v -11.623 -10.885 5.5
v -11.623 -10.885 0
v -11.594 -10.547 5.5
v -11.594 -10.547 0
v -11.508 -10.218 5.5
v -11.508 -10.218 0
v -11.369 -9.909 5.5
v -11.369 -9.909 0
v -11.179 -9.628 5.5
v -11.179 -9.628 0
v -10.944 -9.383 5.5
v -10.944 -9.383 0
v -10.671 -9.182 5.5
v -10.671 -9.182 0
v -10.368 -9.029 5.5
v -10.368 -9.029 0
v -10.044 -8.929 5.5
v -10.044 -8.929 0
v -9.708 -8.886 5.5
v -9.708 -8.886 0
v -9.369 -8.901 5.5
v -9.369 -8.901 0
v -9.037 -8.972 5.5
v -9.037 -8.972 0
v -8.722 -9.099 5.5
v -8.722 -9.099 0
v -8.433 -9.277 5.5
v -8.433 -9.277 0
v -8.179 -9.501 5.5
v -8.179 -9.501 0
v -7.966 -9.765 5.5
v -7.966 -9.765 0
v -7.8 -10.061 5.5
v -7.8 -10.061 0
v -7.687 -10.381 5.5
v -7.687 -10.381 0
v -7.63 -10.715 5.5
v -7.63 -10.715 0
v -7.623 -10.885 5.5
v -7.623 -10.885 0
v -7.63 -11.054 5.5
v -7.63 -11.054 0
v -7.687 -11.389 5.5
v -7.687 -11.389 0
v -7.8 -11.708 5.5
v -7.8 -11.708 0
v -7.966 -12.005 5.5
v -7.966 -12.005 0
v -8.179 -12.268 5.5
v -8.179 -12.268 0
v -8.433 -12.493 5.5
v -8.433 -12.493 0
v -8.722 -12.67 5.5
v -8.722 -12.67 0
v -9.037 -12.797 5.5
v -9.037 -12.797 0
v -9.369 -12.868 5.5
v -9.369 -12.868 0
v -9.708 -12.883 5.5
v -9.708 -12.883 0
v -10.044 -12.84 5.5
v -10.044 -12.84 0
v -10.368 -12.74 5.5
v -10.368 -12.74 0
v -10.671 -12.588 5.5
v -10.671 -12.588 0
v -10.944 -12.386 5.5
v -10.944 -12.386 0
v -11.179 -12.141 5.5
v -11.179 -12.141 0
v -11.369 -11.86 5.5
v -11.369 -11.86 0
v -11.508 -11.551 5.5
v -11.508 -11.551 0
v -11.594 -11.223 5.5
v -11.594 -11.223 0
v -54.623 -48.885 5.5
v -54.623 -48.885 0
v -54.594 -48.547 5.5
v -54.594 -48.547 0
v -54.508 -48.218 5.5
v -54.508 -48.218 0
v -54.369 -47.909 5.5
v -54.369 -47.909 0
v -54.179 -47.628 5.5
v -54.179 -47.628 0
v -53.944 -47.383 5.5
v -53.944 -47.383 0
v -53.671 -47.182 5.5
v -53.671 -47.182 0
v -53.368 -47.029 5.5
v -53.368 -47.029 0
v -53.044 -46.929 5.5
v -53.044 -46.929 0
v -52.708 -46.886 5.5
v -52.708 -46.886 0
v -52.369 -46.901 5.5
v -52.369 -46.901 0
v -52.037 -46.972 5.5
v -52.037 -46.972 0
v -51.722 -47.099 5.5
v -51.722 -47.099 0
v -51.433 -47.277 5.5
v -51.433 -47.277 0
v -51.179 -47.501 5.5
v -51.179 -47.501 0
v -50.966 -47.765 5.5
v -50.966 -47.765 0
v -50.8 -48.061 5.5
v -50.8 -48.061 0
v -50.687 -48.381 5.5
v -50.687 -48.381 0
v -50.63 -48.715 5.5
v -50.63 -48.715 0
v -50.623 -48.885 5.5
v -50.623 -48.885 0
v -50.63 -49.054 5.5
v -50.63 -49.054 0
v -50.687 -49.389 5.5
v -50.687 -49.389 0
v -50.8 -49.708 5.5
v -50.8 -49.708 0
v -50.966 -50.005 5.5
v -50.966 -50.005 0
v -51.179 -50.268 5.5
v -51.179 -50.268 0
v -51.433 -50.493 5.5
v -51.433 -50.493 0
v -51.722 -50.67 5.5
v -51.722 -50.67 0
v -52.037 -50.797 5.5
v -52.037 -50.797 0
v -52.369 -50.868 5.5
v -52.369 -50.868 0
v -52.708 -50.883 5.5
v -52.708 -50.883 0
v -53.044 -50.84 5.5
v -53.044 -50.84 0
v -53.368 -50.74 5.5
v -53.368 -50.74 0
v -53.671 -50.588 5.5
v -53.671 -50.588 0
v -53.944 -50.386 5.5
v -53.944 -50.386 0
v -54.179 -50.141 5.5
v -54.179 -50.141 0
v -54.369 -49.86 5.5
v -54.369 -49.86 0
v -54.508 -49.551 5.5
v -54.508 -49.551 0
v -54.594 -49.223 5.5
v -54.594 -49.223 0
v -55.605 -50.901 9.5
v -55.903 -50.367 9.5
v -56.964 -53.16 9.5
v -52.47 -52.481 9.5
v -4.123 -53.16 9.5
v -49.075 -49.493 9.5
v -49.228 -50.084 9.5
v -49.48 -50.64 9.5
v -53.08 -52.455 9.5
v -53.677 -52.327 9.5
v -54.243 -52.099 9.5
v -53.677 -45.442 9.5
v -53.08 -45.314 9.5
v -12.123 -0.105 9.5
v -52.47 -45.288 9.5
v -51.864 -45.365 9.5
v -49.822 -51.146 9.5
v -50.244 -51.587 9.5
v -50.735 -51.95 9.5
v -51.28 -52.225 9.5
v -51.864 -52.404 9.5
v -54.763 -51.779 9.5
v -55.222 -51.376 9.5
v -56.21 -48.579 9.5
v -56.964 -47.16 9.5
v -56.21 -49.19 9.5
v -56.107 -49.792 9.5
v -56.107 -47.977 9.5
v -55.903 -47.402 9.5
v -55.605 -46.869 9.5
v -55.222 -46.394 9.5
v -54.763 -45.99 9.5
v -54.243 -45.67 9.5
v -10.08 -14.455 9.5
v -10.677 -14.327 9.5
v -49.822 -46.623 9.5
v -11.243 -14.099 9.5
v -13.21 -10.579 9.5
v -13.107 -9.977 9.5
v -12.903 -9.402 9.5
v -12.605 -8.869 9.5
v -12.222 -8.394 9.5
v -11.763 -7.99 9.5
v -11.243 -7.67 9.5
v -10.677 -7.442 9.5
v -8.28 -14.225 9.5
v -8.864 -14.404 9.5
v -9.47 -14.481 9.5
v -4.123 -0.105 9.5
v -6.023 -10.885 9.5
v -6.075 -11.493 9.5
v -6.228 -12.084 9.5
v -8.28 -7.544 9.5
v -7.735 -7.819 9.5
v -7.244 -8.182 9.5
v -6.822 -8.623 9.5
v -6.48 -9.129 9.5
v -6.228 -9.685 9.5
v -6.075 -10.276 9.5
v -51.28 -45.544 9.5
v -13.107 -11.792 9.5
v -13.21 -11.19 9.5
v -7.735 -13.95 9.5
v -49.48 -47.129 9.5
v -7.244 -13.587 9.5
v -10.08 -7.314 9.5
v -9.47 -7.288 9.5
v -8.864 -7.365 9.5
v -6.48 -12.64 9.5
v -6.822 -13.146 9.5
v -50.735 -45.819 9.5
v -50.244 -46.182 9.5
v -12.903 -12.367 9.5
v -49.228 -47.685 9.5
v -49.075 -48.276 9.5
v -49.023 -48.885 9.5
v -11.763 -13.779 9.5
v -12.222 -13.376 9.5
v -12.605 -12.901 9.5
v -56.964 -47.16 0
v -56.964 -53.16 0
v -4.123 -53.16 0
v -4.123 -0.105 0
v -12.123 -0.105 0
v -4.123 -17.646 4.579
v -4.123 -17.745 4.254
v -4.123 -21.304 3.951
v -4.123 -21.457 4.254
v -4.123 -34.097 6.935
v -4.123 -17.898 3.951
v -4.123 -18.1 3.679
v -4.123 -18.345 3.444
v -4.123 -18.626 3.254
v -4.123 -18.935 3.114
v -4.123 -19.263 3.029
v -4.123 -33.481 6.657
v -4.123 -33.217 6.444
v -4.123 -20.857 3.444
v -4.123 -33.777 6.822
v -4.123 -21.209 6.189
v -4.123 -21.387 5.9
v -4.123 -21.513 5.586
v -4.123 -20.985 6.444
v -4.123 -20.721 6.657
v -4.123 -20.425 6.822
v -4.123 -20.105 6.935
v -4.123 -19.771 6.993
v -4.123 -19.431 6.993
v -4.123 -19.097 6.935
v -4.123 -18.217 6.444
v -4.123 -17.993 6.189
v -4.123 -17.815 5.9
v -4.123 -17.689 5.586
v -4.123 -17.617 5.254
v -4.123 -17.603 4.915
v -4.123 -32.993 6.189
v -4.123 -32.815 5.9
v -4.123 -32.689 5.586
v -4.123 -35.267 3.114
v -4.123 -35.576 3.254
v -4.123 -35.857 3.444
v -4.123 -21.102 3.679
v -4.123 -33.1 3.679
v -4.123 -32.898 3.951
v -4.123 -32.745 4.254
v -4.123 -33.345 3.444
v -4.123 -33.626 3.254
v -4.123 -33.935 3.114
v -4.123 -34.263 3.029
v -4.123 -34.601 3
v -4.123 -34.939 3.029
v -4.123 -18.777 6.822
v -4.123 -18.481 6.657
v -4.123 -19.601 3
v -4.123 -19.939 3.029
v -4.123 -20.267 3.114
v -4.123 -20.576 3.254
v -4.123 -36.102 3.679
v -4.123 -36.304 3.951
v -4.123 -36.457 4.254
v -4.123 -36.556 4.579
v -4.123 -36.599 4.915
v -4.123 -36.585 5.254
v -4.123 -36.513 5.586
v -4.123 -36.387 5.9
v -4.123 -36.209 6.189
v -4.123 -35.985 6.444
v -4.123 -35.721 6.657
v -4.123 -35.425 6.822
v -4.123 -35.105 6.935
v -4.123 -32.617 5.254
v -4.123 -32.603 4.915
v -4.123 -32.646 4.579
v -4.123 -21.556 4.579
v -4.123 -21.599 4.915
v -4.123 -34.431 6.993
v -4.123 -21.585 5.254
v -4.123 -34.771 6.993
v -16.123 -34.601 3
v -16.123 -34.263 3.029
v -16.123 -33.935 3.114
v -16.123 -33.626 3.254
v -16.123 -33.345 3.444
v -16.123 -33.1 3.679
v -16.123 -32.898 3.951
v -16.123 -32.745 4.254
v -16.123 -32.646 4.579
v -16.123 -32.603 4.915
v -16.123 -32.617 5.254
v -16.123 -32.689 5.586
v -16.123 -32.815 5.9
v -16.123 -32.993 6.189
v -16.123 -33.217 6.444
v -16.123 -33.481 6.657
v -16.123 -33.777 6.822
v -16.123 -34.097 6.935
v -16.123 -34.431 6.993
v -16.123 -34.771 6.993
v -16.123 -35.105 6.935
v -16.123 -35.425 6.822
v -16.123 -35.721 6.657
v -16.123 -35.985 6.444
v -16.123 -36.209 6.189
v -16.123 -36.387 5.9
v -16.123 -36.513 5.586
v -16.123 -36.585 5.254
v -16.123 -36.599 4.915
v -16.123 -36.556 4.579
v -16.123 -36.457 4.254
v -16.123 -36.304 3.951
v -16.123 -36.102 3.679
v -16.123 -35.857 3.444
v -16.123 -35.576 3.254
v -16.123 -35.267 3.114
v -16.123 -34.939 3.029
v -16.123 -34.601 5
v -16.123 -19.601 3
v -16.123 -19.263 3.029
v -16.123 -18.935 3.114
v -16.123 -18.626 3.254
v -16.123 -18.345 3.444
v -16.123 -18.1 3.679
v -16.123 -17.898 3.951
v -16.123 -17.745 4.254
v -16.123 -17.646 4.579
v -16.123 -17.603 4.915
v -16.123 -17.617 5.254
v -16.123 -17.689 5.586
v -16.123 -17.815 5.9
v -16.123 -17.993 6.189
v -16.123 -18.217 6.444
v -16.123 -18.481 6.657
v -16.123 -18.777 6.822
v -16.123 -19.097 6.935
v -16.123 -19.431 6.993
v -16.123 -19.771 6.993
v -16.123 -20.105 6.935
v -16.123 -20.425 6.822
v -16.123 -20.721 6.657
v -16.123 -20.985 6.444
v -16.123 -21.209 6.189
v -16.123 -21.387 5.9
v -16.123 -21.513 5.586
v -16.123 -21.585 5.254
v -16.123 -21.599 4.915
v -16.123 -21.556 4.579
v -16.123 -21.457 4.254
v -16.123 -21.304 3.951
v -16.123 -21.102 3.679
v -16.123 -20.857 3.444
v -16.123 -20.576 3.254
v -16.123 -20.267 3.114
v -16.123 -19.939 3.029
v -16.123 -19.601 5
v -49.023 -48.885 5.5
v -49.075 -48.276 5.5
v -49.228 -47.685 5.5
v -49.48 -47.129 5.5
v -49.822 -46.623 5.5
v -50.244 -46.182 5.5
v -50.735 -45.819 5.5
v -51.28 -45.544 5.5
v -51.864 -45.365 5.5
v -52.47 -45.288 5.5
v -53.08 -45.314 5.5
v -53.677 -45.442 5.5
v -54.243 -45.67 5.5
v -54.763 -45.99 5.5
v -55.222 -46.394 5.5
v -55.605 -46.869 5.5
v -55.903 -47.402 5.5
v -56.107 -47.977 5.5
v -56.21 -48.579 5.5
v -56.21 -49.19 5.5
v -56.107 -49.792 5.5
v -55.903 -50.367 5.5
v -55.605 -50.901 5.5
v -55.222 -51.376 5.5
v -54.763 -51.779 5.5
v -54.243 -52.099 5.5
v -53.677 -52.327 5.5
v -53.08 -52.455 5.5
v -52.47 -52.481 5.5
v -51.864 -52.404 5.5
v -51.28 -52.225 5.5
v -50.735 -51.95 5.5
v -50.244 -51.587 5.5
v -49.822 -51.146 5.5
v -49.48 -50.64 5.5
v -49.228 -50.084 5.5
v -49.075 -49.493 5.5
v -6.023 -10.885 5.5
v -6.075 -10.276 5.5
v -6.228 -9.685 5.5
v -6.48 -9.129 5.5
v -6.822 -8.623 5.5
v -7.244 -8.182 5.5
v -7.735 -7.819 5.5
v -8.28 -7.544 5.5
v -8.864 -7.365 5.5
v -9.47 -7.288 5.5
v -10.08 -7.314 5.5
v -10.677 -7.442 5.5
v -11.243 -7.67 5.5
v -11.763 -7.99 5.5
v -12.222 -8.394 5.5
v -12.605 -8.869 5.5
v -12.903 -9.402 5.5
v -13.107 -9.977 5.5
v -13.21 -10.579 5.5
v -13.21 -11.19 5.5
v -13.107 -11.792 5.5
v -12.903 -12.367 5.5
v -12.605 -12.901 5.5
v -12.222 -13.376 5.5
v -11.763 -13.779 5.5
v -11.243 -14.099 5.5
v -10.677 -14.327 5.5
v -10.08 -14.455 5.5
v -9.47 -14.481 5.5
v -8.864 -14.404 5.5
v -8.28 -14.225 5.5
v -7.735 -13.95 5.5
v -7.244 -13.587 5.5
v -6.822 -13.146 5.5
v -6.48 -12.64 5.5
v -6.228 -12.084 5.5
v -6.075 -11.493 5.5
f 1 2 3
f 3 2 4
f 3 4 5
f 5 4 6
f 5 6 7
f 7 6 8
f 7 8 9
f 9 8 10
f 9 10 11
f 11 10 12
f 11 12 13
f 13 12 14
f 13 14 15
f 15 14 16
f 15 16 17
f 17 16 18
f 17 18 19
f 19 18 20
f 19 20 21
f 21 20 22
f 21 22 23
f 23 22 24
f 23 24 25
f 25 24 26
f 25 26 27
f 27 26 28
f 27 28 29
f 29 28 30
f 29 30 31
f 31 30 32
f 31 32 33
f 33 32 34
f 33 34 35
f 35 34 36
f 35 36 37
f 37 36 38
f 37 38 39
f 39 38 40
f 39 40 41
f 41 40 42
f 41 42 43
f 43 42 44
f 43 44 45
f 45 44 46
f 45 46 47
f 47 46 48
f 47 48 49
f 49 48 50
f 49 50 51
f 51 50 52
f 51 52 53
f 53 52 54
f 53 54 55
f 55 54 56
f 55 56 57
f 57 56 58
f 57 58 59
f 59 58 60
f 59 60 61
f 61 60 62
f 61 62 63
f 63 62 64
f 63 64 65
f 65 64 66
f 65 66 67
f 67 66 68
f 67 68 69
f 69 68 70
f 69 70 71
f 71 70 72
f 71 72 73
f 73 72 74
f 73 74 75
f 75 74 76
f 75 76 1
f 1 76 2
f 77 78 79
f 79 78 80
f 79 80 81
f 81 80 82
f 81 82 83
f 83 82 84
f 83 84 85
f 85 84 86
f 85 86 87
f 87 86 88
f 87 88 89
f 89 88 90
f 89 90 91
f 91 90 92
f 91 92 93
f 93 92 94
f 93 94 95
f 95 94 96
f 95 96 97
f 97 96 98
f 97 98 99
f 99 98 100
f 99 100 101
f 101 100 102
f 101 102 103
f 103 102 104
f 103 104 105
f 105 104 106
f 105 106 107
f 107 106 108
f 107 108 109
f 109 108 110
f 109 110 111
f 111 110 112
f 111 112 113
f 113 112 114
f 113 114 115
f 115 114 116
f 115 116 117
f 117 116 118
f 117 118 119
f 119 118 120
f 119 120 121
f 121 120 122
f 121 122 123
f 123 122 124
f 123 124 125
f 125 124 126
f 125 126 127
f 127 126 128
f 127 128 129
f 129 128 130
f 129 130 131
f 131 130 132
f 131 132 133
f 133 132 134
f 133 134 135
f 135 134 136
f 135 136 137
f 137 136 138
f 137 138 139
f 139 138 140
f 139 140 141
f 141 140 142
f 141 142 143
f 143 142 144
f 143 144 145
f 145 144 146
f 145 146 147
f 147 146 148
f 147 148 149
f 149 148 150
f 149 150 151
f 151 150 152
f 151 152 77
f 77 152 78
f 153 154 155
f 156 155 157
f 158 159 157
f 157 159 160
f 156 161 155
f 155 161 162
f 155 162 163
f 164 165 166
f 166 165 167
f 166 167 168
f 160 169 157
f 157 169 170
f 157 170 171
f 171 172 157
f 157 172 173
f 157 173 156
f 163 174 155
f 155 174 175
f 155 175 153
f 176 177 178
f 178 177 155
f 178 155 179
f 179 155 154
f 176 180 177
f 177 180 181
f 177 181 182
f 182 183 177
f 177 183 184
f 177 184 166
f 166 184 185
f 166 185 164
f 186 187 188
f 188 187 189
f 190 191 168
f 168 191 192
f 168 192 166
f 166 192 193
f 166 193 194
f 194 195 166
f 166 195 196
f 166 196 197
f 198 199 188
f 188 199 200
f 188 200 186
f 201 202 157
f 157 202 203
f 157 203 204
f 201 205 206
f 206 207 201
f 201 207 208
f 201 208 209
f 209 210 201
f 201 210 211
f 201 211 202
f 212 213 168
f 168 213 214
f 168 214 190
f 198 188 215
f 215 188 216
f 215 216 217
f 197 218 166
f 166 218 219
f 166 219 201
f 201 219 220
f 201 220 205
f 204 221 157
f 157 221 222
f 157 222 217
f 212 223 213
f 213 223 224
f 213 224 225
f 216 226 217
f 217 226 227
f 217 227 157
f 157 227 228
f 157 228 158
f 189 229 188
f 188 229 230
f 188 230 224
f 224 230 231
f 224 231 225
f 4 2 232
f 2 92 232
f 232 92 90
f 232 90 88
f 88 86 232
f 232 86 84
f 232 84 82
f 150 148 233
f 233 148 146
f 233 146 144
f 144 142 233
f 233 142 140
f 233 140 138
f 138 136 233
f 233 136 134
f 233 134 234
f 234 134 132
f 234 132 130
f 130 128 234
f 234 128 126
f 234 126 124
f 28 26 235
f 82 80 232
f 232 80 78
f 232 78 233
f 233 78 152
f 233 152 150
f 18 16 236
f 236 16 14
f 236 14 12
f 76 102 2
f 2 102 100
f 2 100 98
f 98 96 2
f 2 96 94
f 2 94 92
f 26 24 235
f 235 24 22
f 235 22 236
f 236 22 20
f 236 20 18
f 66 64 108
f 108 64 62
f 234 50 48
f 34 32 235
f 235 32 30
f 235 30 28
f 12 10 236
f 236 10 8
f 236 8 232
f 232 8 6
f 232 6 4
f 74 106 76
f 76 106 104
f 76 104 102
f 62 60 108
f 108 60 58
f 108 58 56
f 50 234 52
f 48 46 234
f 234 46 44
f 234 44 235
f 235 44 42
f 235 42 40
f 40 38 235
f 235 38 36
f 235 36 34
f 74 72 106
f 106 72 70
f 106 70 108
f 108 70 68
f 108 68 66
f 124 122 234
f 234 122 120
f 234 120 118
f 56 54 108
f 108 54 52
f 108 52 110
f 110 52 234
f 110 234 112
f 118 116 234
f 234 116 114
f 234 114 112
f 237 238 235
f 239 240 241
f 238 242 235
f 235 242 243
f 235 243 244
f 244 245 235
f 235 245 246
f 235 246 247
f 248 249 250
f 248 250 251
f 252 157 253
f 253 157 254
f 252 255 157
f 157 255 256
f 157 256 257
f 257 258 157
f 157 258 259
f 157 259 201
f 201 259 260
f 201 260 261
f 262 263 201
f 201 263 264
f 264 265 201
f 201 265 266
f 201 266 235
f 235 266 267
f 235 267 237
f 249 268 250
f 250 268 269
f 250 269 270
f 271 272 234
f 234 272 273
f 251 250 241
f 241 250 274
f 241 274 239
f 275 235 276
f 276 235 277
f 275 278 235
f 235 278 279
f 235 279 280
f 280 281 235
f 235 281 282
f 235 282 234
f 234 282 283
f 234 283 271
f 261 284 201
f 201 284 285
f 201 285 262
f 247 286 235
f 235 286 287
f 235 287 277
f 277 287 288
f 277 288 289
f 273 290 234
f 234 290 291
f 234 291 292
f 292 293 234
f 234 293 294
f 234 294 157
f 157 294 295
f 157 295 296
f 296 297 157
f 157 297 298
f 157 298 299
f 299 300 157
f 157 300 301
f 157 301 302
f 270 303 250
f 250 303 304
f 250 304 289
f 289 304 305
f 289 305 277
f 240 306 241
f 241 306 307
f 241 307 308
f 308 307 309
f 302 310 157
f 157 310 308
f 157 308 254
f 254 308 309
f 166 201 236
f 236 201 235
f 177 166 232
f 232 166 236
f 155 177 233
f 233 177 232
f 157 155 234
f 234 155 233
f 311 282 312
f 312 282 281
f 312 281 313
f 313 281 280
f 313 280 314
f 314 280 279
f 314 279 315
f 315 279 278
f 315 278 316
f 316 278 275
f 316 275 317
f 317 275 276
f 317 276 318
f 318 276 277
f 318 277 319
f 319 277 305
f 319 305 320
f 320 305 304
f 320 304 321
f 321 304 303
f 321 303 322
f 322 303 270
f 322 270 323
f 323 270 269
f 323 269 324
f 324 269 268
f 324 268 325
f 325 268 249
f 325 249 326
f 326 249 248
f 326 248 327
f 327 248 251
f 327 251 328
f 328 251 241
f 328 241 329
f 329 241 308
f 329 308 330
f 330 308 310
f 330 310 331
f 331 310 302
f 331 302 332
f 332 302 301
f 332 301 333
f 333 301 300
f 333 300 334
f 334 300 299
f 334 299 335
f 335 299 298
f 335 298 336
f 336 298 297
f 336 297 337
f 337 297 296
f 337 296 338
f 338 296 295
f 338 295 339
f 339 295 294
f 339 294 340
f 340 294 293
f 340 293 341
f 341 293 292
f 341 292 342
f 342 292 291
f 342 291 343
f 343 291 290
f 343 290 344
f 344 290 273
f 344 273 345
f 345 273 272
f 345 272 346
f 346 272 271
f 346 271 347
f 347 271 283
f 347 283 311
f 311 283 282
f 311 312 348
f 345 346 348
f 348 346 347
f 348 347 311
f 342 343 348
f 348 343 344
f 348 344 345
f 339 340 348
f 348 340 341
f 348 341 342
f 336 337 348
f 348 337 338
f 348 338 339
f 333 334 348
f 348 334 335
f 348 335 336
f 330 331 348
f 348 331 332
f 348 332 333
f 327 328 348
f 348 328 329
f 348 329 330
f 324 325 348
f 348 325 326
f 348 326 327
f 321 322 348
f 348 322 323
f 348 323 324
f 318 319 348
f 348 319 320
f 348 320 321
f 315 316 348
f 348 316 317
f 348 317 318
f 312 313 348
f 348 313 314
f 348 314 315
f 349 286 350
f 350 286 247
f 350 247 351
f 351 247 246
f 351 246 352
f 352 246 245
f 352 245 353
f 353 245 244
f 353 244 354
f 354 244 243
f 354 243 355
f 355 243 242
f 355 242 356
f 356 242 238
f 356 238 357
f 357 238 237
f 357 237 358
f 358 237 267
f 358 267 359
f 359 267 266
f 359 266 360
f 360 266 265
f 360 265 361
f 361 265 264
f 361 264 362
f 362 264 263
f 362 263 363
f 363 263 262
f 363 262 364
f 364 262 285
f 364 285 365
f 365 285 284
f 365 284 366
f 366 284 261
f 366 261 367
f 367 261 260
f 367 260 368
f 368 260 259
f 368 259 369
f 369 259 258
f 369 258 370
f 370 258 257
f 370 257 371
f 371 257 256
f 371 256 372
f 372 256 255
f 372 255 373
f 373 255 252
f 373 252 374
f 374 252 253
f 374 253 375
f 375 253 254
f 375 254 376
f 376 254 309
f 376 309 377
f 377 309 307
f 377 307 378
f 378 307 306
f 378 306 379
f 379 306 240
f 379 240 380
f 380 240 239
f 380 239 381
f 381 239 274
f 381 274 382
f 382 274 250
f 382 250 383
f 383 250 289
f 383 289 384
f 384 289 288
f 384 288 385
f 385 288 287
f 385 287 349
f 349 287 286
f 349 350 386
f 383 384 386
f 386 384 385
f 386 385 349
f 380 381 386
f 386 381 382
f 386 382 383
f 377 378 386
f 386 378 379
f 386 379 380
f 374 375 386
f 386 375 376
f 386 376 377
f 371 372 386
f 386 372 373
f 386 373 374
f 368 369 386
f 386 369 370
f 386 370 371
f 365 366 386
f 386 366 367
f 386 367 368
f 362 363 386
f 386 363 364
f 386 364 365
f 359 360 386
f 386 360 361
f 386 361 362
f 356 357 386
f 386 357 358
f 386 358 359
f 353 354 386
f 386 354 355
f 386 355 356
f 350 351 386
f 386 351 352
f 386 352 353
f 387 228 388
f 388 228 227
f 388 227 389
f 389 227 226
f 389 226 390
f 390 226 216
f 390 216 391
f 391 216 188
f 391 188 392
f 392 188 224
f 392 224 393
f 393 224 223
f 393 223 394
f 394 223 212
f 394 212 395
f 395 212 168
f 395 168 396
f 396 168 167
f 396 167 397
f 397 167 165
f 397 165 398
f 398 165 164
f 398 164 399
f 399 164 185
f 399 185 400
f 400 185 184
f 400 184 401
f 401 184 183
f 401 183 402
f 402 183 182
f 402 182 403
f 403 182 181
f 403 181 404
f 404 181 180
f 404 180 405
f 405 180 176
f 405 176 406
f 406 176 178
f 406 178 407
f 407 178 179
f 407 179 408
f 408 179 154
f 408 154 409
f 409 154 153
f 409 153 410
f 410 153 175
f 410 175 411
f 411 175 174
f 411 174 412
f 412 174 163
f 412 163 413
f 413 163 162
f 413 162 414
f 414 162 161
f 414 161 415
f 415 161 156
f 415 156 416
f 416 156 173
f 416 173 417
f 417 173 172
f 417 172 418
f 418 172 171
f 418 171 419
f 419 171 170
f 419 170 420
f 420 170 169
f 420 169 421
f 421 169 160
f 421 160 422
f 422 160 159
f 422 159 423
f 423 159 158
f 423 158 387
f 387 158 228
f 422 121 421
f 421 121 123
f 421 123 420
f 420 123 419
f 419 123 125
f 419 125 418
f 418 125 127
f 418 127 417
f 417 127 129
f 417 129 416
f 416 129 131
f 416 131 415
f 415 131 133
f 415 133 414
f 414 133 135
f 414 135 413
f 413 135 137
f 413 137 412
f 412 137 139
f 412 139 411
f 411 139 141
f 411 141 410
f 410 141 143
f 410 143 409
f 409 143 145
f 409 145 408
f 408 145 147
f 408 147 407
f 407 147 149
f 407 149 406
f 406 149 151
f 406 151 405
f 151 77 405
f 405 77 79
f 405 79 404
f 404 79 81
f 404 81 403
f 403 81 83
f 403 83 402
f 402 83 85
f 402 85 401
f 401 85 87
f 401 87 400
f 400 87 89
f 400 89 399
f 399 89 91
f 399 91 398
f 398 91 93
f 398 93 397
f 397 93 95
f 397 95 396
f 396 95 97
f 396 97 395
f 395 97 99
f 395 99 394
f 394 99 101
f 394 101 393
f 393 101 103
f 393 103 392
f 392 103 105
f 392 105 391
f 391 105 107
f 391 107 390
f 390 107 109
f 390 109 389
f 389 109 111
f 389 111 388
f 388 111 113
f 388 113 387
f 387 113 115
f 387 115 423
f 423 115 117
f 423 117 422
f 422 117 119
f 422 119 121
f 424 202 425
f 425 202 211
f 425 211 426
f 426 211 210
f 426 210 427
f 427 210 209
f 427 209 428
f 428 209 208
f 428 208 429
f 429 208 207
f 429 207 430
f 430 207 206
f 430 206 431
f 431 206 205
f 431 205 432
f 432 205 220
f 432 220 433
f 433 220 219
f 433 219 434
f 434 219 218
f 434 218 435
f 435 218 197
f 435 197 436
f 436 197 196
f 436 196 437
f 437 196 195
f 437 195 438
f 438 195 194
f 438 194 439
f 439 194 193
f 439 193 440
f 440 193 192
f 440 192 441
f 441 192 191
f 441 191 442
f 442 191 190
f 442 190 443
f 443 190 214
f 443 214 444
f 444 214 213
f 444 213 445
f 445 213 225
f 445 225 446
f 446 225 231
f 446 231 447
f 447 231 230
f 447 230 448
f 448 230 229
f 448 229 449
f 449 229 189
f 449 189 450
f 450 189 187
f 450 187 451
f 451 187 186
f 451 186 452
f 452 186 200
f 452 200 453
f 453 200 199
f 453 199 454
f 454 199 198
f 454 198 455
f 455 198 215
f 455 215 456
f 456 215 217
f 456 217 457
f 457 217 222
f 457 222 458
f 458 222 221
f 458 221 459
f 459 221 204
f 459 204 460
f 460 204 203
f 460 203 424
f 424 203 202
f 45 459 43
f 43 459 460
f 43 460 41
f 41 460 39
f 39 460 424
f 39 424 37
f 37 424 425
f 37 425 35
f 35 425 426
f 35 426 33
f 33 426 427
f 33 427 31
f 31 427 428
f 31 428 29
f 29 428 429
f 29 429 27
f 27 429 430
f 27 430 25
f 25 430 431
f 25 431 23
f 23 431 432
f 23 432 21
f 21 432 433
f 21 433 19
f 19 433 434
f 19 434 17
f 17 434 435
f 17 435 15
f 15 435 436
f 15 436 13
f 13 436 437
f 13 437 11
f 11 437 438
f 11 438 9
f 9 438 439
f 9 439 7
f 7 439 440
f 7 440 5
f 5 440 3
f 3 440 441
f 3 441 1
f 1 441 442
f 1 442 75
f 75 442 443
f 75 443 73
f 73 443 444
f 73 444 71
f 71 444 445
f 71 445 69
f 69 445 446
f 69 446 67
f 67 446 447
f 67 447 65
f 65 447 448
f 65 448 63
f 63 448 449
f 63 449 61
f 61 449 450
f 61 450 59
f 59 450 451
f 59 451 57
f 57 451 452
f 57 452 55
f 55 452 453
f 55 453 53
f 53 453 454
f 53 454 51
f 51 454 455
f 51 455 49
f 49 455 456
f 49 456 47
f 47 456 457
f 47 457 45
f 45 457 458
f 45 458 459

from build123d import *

# Parameters (mm, degrees)
SKETCH1_R           = 2
BOSS_EXTRUDE1_DEPTH = 9.5
SKETCH2_R           = 2
CUT_EXTRUDE1_DEPTH  = 12
SKETCH3_R           = 3.6
CUT_EXTRUDE2_DEPTH  = 4
SKETCH4_R           = 3.6
CUT_EXTRUDE3_DEPTH  = 4


with BuildPart() as part:
    # Sketch1 → Boss-Extrude1 (new body)
    with BuildSketch(Plane.XY):
        Polygon((-4.122741548, -0.104764568), (-12.122741548, -0.104764568), (-56.964364606, -47.160357663), (-56.964364606, -53.160357663), (-10.122741548, -53.160357663), (-4.122741548, -53.160357663), align=None)
        with Locations((-52.622741548, -48.884592163)):
            Circle(SKETCH1_R, mode=Mode.SUBTRACT)
        with Locations((-9.622741548, -10.884592163)):
            Circle(SKETCH1_R, mode=Mode.SUBTRACT)
    extrude(amount=BOSS_EXTRUDE1_DEPTH)

    # Sketch2 → Cut-Extrude1 (cut)
    with BuildSketch(Plane(origin=(-4.122741548, 0, 0), x_dir=(0, 0, -1), z_dir=(1, 0, 0))):
        with Locations((-5, -19.600993214)):
            Circle(SKETCH2_R)
        with Locations((-5, -34.600993214)):
            Circle(SKETCH2_R)
    extrude(amount=-CUT_EXTRUDE1_DEPTH, mode=Mode.SUBTRACT)

    # Sketch3 → Cut-Extrude2 (cut)
    with BuildSketch(Plane.XY.offset(9.5)):
        with Locations((-52.622741548, -48.884592163)):
            Circle(SKETCH3_R)
    extrude(amount=-CUT_EXTRUDE2_DEPTH, mode=Mode.SUBTRACT)

    # Sketch4 → Cut-Extrude3 (cut)
    with BuildSketch(Plane.XY.offset(9.5)):
        with Locations((-9.622741548, -10.884592163)):
            Circle(SKETCH4_R)
    extrude(amount=-CUT_EXTRUDE3_DEPTH, mode=Mode.SUBTRACT)


solid = part.part
